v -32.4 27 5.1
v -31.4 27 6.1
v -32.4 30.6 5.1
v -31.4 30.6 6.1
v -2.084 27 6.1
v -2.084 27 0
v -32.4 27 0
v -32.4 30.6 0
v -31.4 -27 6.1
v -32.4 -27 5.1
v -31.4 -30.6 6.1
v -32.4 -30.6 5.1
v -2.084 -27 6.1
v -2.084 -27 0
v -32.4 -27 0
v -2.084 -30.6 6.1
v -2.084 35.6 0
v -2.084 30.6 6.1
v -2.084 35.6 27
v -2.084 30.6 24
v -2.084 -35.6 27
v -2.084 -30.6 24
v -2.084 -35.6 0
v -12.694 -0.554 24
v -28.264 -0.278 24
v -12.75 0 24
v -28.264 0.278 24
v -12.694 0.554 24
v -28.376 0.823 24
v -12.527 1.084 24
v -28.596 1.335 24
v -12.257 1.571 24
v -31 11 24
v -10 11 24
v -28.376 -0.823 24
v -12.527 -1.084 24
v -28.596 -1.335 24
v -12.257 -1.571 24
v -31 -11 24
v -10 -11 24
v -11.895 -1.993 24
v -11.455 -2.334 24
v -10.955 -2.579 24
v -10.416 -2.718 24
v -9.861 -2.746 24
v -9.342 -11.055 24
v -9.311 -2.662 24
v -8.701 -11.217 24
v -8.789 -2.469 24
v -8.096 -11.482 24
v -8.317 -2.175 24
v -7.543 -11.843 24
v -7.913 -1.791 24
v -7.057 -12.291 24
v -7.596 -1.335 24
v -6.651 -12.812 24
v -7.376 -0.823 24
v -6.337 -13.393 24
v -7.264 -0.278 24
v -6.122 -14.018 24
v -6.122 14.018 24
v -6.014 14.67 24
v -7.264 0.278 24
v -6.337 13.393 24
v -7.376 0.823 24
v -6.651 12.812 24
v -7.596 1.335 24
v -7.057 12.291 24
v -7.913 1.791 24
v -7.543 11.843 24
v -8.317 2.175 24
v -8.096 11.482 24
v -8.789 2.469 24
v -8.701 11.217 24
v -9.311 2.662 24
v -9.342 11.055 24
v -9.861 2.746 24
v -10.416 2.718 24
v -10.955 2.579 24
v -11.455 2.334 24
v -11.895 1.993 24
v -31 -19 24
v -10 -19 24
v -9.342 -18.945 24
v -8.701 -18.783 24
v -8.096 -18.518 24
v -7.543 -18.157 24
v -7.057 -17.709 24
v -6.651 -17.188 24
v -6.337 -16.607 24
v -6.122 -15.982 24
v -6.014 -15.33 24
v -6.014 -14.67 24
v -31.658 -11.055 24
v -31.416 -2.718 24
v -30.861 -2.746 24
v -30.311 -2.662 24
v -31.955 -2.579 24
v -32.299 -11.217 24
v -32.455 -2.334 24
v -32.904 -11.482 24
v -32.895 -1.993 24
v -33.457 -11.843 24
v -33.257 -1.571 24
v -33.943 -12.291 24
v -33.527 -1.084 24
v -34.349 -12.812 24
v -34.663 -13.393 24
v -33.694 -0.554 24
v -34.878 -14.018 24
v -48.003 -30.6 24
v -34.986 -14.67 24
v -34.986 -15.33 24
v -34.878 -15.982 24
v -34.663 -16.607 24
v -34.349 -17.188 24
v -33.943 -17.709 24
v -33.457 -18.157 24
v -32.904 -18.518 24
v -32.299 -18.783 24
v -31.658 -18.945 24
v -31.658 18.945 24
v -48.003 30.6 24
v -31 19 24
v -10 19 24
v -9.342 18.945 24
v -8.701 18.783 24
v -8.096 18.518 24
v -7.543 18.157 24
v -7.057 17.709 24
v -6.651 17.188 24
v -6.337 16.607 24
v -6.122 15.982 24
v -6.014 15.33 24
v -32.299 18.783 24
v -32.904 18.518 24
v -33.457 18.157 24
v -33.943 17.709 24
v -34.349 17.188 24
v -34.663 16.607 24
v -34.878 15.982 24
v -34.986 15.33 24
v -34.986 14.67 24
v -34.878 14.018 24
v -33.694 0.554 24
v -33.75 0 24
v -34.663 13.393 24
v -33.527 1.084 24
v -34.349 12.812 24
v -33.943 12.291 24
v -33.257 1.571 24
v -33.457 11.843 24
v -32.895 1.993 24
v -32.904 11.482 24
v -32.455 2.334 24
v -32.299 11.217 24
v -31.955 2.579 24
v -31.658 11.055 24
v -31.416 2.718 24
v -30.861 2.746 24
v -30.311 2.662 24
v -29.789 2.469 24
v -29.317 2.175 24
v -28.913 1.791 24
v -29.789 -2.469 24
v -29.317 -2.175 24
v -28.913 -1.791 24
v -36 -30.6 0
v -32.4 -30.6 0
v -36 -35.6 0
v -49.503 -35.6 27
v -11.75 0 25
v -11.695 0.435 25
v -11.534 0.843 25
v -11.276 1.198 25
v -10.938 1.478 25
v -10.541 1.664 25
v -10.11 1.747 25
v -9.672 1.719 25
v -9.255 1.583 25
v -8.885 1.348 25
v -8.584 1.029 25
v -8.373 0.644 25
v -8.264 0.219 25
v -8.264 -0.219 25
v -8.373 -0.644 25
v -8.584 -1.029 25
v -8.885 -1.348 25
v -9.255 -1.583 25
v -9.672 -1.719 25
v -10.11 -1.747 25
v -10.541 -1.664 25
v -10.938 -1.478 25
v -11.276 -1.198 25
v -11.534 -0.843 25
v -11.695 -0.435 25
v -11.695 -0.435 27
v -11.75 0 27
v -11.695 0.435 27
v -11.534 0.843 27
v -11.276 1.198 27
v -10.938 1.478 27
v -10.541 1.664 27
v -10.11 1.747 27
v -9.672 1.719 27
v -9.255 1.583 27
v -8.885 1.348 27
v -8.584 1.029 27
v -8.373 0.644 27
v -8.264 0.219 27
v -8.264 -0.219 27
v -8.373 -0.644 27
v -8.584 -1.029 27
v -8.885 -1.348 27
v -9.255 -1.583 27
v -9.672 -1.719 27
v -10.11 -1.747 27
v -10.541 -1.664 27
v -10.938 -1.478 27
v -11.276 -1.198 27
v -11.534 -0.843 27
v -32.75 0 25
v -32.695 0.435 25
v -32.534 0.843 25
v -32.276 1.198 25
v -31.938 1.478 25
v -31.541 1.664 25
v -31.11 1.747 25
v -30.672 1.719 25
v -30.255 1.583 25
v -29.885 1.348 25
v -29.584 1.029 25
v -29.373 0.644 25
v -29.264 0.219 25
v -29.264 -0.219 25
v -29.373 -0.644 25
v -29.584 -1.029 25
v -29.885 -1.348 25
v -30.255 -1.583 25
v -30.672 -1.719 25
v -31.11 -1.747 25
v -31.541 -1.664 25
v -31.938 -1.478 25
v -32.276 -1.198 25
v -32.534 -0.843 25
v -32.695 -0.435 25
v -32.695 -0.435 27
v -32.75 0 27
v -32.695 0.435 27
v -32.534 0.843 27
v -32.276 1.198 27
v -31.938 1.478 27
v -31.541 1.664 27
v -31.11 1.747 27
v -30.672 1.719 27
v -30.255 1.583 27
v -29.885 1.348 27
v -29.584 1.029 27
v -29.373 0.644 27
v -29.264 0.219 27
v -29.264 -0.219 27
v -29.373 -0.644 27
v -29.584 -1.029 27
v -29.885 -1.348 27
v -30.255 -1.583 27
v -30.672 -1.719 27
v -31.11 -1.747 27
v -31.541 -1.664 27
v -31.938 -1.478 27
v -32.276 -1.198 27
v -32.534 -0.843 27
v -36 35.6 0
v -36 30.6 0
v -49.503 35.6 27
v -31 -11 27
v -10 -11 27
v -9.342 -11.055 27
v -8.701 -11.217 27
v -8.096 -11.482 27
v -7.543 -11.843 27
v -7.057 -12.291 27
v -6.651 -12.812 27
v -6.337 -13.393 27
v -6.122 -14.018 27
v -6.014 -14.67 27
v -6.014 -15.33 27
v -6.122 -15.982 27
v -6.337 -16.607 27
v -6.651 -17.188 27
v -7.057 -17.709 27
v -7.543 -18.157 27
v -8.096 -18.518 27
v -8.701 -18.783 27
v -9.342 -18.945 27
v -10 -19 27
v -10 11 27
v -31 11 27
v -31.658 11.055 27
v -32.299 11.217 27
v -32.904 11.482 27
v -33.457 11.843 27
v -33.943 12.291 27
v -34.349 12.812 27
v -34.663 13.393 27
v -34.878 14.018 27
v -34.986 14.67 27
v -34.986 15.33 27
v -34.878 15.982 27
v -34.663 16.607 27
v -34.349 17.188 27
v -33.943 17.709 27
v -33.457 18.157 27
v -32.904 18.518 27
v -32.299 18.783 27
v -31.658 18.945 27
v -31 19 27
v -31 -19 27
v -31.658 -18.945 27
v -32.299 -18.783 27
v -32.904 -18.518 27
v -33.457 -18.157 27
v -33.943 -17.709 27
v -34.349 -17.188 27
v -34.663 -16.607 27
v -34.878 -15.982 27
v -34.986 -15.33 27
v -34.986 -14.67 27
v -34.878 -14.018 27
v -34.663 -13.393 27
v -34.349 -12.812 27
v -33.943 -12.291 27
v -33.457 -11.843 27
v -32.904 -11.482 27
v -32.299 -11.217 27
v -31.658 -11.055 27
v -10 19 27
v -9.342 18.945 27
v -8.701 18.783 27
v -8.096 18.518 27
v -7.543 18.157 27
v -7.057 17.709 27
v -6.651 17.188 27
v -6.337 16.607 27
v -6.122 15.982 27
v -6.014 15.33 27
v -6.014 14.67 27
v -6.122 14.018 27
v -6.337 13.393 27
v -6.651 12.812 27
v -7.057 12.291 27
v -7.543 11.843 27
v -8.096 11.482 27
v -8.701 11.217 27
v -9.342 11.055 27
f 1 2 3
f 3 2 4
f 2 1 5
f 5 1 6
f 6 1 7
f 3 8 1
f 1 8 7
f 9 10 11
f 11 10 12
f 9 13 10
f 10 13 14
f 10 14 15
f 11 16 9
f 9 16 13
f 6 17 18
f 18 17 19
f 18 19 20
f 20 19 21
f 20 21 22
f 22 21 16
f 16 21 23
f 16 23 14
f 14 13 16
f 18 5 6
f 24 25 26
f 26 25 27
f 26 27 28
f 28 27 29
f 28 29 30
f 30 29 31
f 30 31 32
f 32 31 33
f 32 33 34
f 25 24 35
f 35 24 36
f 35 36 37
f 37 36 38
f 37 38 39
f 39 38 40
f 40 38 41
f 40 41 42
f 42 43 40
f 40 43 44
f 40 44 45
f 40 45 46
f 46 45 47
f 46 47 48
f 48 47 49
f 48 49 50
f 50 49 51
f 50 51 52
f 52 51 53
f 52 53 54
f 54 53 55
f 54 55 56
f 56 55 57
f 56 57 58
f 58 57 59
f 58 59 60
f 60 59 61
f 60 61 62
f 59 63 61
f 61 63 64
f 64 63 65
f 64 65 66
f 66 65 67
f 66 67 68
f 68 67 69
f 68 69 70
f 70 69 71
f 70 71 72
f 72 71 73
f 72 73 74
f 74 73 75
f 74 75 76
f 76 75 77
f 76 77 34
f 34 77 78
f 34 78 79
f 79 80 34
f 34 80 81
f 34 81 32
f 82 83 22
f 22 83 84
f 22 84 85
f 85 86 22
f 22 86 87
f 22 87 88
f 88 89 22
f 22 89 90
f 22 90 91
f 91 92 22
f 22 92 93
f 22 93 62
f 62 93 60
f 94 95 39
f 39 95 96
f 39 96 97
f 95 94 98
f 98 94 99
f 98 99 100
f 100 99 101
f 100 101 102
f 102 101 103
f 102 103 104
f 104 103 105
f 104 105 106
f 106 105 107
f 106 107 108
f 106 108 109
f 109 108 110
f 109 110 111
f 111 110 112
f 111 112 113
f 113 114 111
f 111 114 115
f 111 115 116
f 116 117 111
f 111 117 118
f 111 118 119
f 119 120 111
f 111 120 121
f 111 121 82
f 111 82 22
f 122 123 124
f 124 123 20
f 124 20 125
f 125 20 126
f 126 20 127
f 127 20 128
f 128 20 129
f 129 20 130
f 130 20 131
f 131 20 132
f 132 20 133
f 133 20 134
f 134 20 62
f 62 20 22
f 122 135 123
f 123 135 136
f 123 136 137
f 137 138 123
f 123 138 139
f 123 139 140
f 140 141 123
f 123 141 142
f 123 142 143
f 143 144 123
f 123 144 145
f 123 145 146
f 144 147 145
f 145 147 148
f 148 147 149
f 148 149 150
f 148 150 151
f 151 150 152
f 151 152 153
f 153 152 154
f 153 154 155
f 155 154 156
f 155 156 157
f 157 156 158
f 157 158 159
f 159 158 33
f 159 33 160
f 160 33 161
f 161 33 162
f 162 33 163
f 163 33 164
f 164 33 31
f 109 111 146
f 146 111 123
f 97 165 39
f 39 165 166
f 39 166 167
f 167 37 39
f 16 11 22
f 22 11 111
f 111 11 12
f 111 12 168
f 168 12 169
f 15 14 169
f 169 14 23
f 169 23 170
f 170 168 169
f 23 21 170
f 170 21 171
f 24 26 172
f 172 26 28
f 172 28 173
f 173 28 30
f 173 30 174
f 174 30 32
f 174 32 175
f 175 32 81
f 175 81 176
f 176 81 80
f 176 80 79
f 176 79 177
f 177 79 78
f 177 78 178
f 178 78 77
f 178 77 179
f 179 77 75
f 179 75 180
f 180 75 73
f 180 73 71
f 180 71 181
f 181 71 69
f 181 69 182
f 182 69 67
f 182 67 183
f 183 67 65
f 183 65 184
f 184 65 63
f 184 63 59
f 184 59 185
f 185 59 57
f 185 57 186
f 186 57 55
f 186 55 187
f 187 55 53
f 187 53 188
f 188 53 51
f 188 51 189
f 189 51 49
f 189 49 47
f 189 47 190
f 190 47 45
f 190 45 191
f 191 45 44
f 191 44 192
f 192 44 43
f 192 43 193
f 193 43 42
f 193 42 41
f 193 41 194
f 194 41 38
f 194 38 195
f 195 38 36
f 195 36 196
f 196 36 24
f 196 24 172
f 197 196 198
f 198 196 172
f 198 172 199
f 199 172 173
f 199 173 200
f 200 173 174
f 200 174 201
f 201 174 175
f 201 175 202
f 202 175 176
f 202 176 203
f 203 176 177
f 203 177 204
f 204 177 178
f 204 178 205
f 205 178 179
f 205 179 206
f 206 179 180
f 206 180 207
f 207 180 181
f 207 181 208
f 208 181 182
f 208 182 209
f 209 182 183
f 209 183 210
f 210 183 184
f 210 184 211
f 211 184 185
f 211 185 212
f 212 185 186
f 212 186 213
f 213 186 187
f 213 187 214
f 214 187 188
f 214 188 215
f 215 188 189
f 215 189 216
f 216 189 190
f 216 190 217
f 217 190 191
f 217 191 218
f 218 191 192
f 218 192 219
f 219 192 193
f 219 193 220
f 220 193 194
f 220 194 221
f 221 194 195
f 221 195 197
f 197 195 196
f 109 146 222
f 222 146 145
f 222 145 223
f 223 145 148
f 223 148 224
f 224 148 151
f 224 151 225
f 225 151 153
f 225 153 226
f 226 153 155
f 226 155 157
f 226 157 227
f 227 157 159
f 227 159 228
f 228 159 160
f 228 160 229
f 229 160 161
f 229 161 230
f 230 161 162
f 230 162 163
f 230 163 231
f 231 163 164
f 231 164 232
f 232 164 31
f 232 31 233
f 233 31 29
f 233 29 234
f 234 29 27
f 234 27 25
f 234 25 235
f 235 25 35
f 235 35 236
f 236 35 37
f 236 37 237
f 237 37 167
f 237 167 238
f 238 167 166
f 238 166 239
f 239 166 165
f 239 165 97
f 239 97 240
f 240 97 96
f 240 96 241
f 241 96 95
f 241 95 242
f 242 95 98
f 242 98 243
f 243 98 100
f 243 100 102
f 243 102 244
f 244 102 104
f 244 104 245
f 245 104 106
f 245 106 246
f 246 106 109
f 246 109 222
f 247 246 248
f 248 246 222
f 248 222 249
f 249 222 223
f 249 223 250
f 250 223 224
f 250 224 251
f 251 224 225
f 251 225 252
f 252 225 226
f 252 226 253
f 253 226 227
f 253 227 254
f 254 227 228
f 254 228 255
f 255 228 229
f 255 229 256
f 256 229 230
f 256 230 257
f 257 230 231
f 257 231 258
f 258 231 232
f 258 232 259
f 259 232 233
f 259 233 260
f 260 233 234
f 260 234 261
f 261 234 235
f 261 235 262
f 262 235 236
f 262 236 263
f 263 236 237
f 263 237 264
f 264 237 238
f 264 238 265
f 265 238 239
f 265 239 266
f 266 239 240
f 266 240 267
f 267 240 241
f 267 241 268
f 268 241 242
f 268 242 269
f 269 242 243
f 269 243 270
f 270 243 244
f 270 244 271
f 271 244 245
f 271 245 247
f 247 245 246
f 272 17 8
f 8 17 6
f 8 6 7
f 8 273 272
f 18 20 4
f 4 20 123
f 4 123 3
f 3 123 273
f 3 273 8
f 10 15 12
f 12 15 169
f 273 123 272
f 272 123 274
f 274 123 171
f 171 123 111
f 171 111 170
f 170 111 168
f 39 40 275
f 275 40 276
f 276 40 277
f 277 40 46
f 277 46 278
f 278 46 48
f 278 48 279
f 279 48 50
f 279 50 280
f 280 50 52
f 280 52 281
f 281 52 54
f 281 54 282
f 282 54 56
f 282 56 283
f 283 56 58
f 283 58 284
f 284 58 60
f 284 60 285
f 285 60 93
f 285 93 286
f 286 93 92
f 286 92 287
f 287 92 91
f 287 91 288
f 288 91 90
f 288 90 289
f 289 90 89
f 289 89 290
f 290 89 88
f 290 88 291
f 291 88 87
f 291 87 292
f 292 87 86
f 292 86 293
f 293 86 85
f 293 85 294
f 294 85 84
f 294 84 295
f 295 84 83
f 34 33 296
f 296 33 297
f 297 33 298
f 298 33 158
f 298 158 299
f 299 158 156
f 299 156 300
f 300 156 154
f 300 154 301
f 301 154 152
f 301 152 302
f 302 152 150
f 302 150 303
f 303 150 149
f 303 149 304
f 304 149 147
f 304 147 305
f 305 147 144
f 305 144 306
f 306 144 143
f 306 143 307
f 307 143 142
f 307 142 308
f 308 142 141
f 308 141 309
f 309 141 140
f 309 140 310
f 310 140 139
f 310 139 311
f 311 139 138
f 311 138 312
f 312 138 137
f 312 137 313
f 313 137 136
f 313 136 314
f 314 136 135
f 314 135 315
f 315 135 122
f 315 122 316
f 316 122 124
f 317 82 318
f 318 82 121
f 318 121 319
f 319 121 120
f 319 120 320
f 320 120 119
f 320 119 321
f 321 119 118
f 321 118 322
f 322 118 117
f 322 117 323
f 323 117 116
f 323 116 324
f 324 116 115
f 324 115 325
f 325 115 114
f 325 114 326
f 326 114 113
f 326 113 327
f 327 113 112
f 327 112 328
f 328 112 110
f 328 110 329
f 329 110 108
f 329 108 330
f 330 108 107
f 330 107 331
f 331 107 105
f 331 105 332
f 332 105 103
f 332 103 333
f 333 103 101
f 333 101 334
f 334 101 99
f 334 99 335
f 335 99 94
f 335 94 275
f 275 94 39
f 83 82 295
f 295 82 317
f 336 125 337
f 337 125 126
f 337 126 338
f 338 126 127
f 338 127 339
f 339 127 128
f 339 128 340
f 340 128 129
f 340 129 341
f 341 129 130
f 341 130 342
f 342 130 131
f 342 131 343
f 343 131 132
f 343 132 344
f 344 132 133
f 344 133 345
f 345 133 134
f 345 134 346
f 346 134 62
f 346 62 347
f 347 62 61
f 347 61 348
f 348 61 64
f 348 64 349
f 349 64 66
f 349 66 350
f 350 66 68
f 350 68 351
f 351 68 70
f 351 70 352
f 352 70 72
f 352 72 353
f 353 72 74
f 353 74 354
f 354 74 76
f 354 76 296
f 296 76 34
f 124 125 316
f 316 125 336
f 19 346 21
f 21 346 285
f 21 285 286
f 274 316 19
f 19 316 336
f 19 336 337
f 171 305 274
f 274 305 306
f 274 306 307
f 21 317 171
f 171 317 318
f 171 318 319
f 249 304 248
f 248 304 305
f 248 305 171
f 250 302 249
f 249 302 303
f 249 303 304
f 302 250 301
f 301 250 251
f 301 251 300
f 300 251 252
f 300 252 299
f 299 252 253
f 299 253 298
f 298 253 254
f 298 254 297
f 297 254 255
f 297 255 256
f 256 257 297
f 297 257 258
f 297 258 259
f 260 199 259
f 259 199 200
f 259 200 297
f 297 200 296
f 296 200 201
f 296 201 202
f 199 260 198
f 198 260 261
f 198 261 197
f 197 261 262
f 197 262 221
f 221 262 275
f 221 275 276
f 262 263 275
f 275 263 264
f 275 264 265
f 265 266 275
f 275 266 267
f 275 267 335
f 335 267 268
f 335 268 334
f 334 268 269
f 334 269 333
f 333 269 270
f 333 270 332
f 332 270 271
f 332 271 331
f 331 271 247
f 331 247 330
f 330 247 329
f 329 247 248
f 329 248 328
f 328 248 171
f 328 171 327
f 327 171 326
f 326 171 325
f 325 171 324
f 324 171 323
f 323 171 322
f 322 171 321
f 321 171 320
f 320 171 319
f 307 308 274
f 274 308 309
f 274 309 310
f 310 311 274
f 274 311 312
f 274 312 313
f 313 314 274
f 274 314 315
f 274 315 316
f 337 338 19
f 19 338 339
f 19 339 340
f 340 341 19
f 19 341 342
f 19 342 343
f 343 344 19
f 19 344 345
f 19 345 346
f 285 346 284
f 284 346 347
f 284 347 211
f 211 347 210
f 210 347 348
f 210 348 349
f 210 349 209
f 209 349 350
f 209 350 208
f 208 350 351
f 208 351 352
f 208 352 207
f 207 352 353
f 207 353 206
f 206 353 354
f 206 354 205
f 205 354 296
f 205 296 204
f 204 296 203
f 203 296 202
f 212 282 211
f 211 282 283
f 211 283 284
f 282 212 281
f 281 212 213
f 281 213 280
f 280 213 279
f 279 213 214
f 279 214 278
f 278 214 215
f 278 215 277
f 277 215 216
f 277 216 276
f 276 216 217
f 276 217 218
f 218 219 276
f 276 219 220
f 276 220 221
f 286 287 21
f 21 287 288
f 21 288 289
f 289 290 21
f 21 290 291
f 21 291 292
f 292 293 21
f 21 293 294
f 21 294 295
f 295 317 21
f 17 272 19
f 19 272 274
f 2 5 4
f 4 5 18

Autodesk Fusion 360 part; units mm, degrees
sketch "Sketch1" plane through (0, 0, 0) normal (0, 0, 1) x (1, 0, 0)
  line L0 (36, 27) -> (-36, 27)
  line L1 (-36, 27) -> (-36, -27)
  line L2 (-36, -27) -> (36, -27)
  line L3 (36, -27) -> (36, 27)
  line L4 (36, 30.6) -> (-36, 30.6)
  line L5 (-36, 35.6) -> (-36, -30.6)
  line L6 (-36, -30.6) -> (36, -30.6)
  line L7 (36, -30.6) -> (36, 30.6)
  line L8 (33, 35.6) -> (-36, 35.6)
  line L9 (41, -27.6) -> (41, 27.6)
  line L10 (33, -35.6) -> (-36, -35.6)
  line L11 (-36, -35.6) -> (-36, 30.6)
  arc A0 (41, 27.6) -> (33, 35.6) centre (33, 27.6) ccw
  arc A1 (33, -35.6) -> (41, -27.6) centre (33, -27.6) ccw
  circle A2 centre (-31, 0) radius 1.75
  line L12 (-31, 11) -> (-10, 11)
  arc A3 (-10, 11) -> (-10, 19) centre (-10, 15) ccw
  line L13 (-10, 19) -> (-31, 19)
  arc A4 (-31, 19) -> (-31, 11) centre (-31, 15) ccw
  line L14 (-31, 15) -> (-10, 15) construction
  line L15 (1.75, 0) -> (22.5, 0)
  line L16 (-31, -11) -> (-10, -11)
  line L17 (-10, -19) -> (-31, -19)
  arc A5 (-10, -19) -> (-10, -11) centre (-10, -15) ccw
  arc A6 (-31, -11) -> (-31, -19) centre (-31, -15) ccw
  circle A7 centre (-10, 0) radius 1.75
  dimension "d1" = 72
  dimension "d2" = 54
  dimension "d3" = 61.2
  dimension "d6" = 8
  dimension "d32" = 3.5
  dimension "d34" = 8
  dimension "d40" = 3.5
extrude "Extrude1" add sketch "Sketch1" along normal blind 6.1 contours L3 L4 L5 L6 L7 L8 L9 L10 L11 A0 A1 | L0 L4 L5 L7 L11 | L2 L5 L6 L7 L11
extrude "Extrude2" add sketch "Sketch1" along normal blind 24 contours L3 L4 L5 L6 L7 L8 L9 L10 L11 A0 A1
extrude "Extrude3" add sketch "Sketch1" along normal blind 27 and the other way blind -24
sketch "Sketch2" plane through (0, -35.6, 0) normal (0, -1, 0) x (1, 0, 0)
  line L0 (-36, 0) -> (33, 0)
  line L1 (33, 0) -> (33, 27)
  line L2 (-36, 27) -> (-36, 0)
  line L3 (-36, 0) -> (-49.5029, 27)
  line L4 (-36, 0) -> (-6, 0) construction
  line L5 (-36, 27) -> (-49.5029, 27)
  line L6 (33, 27) -> (-36, 27)
  line L7 (-36, 27) -> (-36, 24)
  line L8 (-36, 24) -> (-36.4845, 24)
  line L9 (-36.4845, 24) -> (-48.0026, 24)
  line L10 (-36, 0) -> (-36, 6.4)
  line L11 (-36, 6.4) -> (-36, 6)
  line L12 (-36, 6.4) -> (-39.2007, 6.4)
  line L13 (-36, 0) -> (-32.4, 0)
  line L14 (-49.5029, 27) -> (-47.5029, 27)
  line L15 (-36, 6.4) -> (-32.4, 6.4)
  line L16 (-32.4, 6.4) -> (-32.4, 0)
  dimension "d11" = 116.57
  dimension "d25" = 6.4
  dimension "d36" = 3.6
  dimension "d37" = 2
extrude "Extrude4" add sketch "Sketch2" against normal blind 5 contours L2 L3 L10 L11 L12 | L2 L3 L8 L9 L12
extrude "Extrude5" add sketch "Sketch2" along normal blind -71.2 and the other way blind 66.2 contours L2 L3 L10 L11 L12 | L2 L3 L8 L9 L12
extrude "Extrude6" add sketch "Sketch2" against normal blind 71.2 contours L2 L3 L5 L7 L8 L9 L14
extrude "Extrude7" cut sketch "Sketch2" along normal blind -8.6 and the other way blind 5 contours L0 L2 L10 L11 L13 L15 L16
extrude "Extrude8" cut sketch "Sketch2" along normal blind -66.2 and the other way blind 62.6 contours L0 L2 L10 L11 L13 L15 L16
chamfer "Chamfer2" distance 1 angle 45 2 edges at (-32.6316, 0.6328, 24) (-11.6316, 0.6328, 24)
sketch "Sketch3" plane through (0, 0, 27) normal (0, 0, 1) x (-1, 0, 0)
  arc A0 (10, 19) -> (10, 11) centre (10, 15) ccw
  line L0 (10, 19) -> (31, 19)
  arc A1 (31, 11) -> (31, 19) centre (31, 15) ccw
  line L1 (31, 11) -> (10, 11)
  circle A2 centre (31, 0) radius 1.75
  circle A3 centre (10, 0) radius 1.75
  arc A4 (31, -19) -> (31, -11) centre (31, -15) ccw
  line L2 (31, -19) -> (10, -19)
  arc A5 (10, -11) -> (10, -19) centre (10, -15) ccw
  line L3 (10, -11) -> (31, -11)
  line L4 (49.5029, 35.6) -> (-33, 35.6)
  arc A6 (-33, 35.6) -> (-41, 27.6) centre (-33, 27.6) ccw
  line L5 (-41, 27.6) -> (-41, -27.6)
  arc A7 (-41, -27.6) -> (-33, -35.6) centre (-33, -27.6) ccw
  line L6 (-33, -35.6) -> (49.5029, -35.6)
  line L7 (49.5029, -35.6) -> (49.5029, 35.6)
  line L8 (2.0837, -40) -> (-45, -40)
  line L9 (-45, -40) -> (-45, 40)
  line L10 (-45, 40) -> (2.0837, 40)
  line L11 (2.0837, 40) -> (2.0837, -40)
extrude "Extrude9" cut sketch "Sketch3" against normal blind 55 contours L4 A6 L5 A7 L6 L11 | L4 A6 L5 A7 L6 L8 L9 L10 L11
chamfer "Chamfer3" distance 1 angle 45 2 edges at (-32.4, -28.8, 6.1) (-32.4, 28.8, 6.1)
